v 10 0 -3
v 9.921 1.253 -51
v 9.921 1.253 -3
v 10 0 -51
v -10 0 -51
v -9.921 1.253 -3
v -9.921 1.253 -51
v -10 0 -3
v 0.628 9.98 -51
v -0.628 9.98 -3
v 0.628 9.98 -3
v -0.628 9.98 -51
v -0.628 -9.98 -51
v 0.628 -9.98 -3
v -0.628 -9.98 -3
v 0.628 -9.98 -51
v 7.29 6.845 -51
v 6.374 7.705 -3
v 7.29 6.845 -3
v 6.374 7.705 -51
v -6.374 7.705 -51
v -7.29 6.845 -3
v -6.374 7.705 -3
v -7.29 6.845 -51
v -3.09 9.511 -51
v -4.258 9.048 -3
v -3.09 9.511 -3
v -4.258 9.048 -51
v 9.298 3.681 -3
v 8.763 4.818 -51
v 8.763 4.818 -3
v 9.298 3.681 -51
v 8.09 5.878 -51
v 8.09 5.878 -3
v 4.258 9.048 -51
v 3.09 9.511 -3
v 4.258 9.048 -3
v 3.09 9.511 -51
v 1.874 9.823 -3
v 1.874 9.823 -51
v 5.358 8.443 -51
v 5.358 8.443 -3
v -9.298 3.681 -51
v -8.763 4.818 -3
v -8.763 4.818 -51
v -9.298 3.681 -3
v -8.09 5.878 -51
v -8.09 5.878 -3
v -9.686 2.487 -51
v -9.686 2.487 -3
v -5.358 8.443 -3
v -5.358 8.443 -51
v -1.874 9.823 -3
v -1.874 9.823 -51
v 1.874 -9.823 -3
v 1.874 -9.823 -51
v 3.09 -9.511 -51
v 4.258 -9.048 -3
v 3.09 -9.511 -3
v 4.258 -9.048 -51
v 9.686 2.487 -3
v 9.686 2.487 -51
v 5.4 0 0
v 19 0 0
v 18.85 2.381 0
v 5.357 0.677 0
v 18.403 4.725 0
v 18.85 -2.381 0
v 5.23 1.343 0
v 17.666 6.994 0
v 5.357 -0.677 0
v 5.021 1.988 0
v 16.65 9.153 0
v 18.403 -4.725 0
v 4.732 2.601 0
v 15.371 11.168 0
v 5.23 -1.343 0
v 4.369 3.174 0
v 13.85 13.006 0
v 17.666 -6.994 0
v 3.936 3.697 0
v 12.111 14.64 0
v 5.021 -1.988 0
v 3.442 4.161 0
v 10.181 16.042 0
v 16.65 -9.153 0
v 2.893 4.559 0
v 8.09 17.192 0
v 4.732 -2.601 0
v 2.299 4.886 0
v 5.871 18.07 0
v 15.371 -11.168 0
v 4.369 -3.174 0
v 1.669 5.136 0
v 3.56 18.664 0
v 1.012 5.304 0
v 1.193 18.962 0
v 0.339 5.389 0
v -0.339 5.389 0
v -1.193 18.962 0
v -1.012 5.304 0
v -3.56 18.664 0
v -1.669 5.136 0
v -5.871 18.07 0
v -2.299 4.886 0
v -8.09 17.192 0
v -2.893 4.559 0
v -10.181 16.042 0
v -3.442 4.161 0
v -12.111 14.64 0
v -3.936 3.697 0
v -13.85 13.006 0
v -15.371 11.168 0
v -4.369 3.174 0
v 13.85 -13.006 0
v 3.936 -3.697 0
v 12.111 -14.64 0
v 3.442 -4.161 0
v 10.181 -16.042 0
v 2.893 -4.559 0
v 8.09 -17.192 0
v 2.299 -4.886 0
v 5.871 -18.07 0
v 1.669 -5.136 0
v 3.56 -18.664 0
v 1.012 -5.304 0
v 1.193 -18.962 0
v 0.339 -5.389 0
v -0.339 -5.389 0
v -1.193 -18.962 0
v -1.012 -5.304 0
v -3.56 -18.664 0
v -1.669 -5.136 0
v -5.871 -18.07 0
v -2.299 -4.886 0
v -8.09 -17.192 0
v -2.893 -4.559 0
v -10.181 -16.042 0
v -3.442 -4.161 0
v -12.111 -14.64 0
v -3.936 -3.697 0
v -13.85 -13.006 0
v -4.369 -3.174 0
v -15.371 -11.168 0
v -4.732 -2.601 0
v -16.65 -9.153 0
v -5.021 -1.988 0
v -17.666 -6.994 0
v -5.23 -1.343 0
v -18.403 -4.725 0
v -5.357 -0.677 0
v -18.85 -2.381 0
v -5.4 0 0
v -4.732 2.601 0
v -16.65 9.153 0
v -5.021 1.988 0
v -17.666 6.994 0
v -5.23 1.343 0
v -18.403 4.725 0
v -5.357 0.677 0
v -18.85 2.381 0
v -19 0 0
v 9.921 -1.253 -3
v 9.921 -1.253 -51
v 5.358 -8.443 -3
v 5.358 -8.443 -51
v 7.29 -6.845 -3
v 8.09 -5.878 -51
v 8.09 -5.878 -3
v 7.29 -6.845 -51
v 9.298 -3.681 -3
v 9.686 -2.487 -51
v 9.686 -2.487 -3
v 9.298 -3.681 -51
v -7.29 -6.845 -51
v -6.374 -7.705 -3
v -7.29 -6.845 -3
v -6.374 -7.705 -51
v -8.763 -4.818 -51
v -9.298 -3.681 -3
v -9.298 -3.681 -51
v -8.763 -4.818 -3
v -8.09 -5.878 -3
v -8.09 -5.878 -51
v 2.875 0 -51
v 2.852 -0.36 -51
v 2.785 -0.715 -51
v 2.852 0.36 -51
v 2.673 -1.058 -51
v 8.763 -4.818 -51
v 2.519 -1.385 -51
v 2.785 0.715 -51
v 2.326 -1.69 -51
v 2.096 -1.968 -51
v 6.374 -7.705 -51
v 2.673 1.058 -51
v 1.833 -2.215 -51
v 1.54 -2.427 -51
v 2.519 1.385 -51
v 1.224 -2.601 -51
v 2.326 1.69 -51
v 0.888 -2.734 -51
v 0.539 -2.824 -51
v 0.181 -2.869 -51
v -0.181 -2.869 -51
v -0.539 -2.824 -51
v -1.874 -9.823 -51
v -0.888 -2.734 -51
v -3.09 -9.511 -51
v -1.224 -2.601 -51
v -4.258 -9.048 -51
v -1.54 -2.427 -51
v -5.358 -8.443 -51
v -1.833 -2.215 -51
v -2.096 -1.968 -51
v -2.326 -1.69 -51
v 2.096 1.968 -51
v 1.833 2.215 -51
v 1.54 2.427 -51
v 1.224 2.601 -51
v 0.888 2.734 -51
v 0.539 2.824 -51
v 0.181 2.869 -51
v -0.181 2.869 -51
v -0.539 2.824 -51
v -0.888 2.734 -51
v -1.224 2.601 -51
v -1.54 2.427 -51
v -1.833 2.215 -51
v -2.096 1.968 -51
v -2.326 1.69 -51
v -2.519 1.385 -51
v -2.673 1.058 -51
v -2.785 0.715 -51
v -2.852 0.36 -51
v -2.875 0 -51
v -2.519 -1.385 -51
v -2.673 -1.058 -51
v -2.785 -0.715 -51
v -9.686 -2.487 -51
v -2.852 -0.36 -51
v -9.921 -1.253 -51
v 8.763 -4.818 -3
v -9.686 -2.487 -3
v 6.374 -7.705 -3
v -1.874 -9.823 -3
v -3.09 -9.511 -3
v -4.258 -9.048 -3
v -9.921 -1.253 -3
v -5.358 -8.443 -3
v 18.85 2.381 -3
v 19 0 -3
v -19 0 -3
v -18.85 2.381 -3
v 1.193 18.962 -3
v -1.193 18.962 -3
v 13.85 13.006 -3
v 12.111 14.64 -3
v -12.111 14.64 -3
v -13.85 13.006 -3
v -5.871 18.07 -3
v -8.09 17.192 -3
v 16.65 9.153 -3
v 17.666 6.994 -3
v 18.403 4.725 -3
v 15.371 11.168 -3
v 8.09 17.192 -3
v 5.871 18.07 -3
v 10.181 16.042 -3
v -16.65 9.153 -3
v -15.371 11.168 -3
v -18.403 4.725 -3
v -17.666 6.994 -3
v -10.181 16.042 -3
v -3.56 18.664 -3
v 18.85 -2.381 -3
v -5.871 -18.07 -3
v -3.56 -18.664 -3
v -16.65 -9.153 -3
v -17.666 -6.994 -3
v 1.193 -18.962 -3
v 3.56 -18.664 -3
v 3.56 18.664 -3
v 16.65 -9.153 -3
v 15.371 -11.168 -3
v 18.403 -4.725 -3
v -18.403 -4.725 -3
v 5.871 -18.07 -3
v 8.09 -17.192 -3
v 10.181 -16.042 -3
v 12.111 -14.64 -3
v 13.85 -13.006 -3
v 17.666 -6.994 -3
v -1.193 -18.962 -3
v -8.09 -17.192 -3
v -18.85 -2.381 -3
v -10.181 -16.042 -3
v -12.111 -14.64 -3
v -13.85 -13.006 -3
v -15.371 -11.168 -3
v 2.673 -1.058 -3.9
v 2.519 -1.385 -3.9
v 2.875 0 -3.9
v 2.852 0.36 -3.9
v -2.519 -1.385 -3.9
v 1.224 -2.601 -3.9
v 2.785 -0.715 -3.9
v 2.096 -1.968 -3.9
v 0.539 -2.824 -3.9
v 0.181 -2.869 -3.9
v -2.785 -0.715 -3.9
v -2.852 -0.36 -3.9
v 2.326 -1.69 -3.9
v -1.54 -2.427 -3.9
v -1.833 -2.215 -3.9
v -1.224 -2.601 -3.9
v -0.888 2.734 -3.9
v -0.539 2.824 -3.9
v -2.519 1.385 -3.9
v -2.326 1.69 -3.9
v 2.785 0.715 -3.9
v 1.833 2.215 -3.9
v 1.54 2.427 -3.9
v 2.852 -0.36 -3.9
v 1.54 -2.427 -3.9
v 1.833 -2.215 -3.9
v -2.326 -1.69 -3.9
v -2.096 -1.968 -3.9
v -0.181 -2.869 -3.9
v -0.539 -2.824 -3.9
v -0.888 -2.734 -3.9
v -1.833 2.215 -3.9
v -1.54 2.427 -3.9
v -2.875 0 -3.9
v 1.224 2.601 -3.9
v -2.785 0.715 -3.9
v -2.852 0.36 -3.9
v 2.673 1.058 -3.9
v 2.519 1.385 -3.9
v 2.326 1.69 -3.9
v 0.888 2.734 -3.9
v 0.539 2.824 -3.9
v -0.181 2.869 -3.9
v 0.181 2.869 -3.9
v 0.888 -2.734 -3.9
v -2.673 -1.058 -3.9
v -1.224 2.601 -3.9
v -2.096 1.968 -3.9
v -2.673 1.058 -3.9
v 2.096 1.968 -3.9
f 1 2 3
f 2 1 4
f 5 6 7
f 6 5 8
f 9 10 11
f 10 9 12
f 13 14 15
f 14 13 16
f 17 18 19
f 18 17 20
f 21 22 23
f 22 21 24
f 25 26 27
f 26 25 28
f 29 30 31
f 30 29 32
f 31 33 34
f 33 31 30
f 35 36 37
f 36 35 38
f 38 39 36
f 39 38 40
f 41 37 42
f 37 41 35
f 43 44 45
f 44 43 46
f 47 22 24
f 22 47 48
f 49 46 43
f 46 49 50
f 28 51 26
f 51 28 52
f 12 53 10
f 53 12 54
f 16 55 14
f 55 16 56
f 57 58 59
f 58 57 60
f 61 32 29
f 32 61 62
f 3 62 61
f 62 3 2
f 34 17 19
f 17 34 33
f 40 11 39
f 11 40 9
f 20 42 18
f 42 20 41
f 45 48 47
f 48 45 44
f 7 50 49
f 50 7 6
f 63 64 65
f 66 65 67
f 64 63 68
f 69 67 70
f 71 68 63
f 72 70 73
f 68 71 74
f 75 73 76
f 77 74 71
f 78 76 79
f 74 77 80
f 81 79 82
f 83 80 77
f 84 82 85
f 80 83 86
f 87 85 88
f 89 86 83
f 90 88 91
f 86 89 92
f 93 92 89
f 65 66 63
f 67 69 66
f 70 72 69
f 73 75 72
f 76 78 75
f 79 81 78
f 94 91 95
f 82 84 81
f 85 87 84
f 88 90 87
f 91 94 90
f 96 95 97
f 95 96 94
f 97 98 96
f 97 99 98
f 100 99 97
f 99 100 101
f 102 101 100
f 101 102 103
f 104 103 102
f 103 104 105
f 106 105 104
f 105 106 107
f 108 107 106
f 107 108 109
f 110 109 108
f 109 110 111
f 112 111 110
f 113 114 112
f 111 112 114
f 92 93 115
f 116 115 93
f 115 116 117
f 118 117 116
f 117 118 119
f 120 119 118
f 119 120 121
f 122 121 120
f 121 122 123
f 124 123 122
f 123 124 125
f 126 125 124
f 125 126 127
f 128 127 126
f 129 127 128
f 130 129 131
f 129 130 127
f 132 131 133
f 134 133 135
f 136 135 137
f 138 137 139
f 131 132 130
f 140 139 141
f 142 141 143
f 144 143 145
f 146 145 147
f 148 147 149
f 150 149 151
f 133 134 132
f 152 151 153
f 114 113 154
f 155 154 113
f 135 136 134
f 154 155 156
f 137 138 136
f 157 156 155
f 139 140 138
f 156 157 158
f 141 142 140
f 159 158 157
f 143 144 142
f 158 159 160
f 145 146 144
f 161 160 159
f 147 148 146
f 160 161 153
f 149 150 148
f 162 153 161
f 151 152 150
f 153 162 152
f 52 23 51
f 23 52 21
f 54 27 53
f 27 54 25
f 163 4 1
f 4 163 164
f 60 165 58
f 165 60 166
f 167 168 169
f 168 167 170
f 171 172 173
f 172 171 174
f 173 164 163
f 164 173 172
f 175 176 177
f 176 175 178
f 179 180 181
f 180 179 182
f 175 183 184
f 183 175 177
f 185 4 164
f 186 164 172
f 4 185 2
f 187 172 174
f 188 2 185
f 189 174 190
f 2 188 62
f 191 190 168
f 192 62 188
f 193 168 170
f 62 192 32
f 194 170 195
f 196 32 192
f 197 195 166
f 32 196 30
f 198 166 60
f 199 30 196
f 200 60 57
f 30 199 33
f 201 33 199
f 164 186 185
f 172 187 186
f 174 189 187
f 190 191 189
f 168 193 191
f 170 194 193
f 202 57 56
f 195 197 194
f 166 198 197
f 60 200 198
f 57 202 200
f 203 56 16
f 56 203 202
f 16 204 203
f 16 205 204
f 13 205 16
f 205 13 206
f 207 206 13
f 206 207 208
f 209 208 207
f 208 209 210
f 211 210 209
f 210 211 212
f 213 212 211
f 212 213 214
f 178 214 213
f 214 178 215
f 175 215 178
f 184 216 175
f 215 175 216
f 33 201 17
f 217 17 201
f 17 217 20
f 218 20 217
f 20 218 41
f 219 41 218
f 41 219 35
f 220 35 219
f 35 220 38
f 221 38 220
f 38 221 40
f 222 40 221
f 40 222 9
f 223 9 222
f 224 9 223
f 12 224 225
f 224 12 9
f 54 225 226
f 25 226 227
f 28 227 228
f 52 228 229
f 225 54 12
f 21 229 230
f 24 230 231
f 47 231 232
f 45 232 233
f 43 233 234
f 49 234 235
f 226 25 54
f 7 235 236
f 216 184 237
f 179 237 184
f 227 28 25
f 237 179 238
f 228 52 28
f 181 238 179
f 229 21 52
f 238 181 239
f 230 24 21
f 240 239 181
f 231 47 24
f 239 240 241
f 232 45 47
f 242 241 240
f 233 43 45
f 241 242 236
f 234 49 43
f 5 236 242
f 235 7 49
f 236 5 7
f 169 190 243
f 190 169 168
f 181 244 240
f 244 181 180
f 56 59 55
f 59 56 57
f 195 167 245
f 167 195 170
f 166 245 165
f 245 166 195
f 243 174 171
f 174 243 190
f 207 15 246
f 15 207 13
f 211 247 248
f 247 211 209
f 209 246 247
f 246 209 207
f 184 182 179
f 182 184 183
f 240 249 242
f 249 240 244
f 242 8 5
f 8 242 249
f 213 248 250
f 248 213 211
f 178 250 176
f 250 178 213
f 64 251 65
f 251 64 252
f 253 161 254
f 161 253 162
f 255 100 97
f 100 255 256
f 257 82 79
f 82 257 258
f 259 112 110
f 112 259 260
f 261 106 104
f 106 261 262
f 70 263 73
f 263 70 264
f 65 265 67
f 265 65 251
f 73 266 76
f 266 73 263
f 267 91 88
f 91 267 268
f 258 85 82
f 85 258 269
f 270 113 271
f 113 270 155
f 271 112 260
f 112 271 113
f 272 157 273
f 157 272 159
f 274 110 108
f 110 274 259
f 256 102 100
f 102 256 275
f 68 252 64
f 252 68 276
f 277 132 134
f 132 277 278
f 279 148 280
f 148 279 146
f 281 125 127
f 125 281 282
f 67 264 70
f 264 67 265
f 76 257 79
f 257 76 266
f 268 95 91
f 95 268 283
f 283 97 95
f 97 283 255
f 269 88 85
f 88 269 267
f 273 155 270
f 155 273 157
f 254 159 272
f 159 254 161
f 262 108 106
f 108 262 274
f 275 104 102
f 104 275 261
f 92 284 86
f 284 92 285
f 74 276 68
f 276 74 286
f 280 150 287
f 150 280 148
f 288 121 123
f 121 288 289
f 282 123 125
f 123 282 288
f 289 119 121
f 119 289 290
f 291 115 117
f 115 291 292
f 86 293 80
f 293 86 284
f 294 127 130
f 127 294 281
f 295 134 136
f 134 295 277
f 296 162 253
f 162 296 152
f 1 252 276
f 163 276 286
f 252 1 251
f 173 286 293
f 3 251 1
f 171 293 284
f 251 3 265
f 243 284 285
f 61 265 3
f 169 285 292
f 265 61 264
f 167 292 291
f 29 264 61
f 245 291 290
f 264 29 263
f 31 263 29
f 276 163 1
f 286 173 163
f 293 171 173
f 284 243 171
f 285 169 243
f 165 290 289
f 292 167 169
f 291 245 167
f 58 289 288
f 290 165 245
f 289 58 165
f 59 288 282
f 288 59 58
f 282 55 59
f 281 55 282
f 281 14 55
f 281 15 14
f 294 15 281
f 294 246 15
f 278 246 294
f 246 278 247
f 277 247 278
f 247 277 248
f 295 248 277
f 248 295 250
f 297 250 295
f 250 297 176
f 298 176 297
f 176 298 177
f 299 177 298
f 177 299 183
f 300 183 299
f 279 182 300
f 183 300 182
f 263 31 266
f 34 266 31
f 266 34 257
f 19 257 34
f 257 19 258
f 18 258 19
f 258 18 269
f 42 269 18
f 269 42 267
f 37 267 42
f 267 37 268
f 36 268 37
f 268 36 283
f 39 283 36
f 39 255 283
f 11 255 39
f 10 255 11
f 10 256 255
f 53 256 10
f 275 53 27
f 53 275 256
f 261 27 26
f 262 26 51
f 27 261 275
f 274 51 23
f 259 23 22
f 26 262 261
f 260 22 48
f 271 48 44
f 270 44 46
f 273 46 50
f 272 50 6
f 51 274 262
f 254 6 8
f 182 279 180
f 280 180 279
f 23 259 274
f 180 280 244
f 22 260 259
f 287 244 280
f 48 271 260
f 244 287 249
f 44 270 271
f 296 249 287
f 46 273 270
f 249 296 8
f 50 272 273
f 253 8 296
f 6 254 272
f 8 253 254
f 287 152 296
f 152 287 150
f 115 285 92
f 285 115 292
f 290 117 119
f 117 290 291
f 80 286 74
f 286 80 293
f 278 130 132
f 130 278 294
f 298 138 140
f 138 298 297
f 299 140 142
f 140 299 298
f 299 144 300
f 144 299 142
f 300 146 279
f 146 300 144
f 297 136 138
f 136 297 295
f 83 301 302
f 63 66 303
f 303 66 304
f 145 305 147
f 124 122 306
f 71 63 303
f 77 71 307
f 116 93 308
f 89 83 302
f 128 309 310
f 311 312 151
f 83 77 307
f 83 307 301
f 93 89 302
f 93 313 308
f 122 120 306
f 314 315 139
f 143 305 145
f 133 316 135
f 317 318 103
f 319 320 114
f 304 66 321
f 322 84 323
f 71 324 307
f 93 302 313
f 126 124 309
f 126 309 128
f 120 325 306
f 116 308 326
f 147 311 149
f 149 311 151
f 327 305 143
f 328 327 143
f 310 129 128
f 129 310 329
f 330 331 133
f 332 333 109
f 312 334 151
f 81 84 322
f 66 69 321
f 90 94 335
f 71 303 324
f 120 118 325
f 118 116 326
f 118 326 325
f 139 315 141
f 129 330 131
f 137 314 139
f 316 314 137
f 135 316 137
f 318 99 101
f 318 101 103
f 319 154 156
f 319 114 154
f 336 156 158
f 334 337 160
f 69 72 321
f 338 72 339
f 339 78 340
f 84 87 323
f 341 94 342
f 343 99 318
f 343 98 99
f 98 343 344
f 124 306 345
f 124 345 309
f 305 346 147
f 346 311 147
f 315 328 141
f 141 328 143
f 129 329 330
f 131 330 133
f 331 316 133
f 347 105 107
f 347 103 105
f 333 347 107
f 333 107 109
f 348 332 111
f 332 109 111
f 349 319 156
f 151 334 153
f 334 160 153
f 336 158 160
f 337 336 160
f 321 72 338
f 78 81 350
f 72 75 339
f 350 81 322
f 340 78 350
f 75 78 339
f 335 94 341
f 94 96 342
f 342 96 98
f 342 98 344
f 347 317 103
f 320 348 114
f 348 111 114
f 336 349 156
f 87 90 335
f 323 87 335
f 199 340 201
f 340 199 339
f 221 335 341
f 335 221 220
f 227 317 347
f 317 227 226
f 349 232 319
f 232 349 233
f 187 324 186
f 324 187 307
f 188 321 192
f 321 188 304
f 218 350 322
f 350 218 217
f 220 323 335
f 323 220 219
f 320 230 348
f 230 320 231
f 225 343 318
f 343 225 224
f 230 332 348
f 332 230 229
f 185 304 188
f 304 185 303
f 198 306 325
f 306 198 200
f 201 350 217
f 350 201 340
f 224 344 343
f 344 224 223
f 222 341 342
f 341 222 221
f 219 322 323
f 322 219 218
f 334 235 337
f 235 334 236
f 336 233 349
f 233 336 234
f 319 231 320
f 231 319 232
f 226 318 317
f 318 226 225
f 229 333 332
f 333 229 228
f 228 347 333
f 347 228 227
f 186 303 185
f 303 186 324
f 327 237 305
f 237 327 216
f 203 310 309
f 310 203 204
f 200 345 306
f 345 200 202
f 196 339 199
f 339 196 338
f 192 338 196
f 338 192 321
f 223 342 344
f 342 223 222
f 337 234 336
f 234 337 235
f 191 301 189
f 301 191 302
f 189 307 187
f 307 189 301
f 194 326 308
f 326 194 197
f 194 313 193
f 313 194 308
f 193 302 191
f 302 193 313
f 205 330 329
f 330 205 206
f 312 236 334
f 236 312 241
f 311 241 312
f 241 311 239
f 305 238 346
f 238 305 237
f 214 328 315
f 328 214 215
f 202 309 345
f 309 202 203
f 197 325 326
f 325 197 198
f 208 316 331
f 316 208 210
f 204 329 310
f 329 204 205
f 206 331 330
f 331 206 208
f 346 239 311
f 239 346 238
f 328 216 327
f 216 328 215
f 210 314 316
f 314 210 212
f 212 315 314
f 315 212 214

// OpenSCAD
$fn = 50;


difference() {
	union() {
		translate(v = [0, 0, -51.0000000000]) {
			cylinder(h = 51, r = 10.0000000000);
		}
		translate(v = [0, 0, -3.0000000000]) {
			cylinder(h = 3, r = 19.0000000000);
		}
	}
	union() {
		translate(v = [0, 0, 0]) {
			rotate(a = [0, 0, 0]) {
				difference() {
					union() {
						#translate(v = [0, 0, -51.0000000000]) {
							cylinder(h = 51, r = 2.6000000000);
						}
						#translate(v = [0, 0, -3.9000000000]) {
							cylinder(h = 3.9000000000, r = 10.0000000000, r1 = 2.8750000000, r2 = 5.4000000000);
						}
						#translate(v = [0, 0, -51.0000000000]) {
							cylinder(h = 51, r = 2.8750000000);
						}
						#translate(v = [0, 0, -51.0000000000]) {
							cylinder(h = 51, r = 2.6000000000);
						}
					}
					union();
				}
			}
		}
	}
}
